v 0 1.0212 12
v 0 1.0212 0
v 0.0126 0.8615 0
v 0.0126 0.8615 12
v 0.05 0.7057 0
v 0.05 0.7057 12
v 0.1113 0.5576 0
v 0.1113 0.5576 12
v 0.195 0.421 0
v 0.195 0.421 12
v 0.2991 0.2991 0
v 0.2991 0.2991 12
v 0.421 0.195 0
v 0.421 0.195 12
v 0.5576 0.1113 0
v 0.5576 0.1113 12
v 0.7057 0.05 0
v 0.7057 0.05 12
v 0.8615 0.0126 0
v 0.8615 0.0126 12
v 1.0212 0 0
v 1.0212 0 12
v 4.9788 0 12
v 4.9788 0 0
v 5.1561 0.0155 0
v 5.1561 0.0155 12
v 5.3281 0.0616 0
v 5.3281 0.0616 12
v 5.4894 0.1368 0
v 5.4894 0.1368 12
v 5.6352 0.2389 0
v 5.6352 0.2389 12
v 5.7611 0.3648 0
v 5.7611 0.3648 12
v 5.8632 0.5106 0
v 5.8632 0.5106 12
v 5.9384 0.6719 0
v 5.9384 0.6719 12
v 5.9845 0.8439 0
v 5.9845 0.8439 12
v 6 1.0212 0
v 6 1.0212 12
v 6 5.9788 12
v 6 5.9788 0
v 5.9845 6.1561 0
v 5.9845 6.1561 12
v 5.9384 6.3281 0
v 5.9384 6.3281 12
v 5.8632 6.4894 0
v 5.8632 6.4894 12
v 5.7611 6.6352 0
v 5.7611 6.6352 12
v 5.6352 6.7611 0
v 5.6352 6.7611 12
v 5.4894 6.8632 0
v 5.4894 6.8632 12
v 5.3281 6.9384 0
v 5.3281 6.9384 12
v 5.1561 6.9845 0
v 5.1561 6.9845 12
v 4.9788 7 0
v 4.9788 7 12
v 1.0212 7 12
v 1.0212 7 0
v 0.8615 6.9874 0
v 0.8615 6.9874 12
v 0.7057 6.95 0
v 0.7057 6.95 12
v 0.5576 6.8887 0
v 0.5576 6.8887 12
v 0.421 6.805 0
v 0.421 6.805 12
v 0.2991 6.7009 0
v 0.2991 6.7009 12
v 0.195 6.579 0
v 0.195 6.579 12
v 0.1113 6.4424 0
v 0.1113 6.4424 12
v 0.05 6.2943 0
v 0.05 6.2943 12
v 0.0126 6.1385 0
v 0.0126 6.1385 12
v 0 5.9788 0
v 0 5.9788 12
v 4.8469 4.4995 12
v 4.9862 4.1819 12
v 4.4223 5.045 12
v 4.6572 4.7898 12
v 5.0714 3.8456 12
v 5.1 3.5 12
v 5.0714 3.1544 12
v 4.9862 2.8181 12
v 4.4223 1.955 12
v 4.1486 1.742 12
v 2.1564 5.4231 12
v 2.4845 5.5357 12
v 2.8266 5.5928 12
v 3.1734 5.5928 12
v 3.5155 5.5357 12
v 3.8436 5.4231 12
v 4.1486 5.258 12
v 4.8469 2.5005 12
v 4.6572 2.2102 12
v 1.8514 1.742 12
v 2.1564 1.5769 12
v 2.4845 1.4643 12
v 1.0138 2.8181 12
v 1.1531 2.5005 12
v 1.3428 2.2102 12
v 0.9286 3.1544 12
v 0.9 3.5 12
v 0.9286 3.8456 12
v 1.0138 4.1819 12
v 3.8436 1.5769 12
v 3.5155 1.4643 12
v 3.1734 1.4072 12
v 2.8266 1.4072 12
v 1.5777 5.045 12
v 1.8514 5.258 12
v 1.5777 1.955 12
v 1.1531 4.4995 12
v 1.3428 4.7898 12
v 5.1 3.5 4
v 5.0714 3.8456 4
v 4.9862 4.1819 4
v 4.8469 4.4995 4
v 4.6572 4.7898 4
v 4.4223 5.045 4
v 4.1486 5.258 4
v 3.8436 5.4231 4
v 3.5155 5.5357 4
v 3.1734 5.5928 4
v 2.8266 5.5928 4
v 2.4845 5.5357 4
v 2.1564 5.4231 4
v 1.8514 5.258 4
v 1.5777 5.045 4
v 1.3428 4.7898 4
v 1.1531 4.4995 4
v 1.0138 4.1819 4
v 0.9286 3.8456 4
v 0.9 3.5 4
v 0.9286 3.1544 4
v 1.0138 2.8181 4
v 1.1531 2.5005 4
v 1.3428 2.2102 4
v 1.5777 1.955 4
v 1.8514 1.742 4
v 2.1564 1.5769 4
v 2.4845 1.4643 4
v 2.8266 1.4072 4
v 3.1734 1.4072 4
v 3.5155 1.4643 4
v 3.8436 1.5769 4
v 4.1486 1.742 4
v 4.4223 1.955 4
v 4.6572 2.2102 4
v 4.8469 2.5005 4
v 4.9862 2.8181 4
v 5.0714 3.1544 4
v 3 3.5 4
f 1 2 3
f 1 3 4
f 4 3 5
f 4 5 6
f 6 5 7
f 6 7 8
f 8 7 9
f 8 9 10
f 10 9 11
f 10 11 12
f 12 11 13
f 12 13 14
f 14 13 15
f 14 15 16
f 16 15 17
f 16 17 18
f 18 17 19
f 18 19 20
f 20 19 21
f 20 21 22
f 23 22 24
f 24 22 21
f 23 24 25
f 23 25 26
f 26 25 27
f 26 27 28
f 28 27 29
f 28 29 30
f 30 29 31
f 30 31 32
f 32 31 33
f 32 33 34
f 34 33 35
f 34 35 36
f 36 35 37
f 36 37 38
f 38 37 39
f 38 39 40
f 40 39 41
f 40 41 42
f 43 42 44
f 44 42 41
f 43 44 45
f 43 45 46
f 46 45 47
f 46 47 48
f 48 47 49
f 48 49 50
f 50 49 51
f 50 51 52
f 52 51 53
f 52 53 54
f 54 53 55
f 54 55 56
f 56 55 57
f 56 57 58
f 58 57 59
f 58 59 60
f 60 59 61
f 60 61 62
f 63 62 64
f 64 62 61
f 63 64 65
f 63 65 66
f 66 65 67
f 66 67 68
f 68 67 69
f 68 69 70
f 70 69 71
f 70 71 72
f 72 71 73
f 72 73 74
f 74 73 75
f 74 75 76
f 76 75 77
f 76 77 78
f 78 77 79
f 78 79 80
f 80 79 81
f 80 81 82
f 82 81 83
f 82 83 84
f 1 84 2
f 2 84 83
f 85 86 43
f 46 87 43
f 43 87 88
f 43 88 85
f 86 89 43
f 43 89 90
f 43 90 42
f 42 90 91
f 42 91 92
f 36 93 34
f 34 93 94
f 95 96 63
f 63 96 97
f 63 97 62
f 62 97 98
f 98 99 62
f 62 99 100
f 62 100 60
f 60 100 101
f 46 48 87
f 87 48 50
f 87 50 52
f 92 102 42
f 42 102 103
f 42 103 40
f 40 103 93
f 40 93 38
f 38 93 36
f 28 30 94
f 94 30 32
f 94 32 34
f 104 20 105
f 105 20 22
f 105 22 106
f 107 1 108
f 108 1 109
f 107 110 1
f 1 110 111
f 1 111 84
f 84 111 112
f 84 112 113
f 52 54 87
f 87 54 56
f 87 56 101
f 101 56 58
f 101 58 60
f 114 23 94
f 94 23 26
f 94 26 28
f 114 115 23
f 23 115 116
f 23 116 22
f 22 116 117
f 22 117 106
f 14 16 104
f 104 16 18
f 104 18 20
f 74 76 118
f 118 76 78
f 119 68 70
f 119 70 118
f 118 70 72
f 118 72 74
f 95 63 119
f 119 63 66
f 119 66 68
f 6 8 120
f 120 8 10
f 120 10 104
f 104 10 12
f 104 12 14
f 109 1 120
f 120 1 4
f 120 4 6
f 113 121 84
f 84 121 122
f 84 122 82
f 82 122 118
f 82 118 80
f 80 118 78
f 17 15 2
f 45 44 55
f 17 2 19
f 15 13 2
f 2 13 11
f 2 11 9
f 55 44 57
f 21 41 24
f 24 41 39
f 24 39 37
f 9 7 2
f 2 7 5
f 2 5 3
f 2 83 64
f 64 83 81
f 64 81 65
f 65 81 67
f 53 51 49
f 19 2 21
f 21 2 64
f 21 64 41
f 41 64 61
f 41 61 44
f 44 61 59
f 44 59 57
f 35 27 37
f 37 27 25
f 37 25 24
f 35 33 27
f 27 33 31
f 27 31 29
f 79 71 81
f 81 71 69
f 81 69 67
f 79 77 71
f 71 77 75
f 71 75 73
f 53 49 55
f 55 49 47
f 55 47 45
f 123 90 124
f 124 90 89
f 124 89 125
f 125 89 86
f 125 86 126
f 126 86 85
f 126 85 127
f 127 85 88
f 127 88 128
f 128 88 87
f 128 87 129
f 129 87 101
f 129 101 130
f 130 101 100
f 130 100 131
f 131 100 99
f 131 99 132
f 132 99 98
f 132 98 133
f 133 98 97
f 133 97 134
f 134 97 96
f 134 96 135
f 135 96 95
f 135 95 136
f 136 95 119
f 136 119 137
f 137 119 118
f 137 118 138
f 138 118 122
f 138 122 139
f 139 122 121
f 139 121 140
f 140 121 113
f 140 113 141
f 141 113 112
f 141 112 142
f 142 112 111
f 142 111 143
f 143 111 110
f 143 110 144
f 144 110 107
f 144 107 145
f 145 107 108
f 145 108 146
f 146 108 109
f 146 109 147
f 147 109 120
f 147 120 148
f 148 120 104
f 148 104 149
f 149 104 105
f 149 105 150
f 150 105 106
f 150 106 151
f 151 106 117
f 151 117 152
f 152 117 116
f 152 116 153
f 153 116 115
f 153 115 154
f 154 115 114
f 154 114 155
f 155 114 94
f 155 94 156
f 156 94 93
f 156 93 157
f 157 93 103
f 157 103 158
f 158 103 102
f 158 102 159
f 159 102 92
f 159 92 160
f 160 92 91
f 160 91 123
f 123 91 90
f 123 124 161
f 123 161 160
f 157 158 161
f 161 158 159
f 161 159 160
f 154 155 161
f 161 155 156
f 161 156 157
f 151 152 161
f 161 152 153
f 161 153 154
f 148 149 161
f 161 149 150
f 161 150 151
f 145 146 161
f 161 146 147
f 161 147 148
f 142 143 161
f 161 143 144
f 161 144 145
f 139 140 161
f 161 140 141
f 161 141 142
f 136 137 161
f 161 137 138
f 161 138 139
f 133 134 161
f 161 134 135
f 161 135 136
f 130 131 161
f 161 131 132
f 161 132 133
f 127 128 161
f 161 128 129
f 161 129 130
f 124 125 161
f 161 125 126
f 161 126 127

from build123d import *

# Parameters (mm, degrees)
BOSS_EXTRUDE1_DEPTH = 12
SKETCH2_R           = 2.1
CUT_EXTRUDE1_DEPTH  = 8


with BuildPart() as part:
    # Sketch1 → Boss-Extrude1 (new body)
    with BuildSketch(Plane.XY):
        with BuildLine():
            Line((1.021227299, 0), (4.978772701, 0))
            ThreePointArc((4.978772701, 0), (5.700889449, 0.299110551), (6, 1.021227299))
            Line((6, 1.021227299), (6, 5.978772701))
            ThreePointArc((6, 5.978772701), (5.700889449, 6.700889449), (4.978772701, 7))
            Line((4.978772701, 7), (1.021227299, 7))
            ThreePointArc((1.021227299, 7), (0.299110551, 6.700889449), (0, 5.978772701))
            Line((0, 5.978772701), (0, 1.021227299))
            ThreePointArc((0, 1.021227299), (0.299110551, 0.299110551), (1.021227299, 0))
        make_face()
    extrude(amount=BOSS_EXTRUDE1_DEPTH)

    # Sketch2 → Cut-Extrude1 (cut)
    with BuildSketch(Plane.XY.offset(12)):
        with Locations((3, 3.5)):
            Circle(SKETCH2_R)
    extrude(amount=-CUT_EXTRUDE1_DEPTH, mode=Mode.SUBTRACT)


solid = part.part
